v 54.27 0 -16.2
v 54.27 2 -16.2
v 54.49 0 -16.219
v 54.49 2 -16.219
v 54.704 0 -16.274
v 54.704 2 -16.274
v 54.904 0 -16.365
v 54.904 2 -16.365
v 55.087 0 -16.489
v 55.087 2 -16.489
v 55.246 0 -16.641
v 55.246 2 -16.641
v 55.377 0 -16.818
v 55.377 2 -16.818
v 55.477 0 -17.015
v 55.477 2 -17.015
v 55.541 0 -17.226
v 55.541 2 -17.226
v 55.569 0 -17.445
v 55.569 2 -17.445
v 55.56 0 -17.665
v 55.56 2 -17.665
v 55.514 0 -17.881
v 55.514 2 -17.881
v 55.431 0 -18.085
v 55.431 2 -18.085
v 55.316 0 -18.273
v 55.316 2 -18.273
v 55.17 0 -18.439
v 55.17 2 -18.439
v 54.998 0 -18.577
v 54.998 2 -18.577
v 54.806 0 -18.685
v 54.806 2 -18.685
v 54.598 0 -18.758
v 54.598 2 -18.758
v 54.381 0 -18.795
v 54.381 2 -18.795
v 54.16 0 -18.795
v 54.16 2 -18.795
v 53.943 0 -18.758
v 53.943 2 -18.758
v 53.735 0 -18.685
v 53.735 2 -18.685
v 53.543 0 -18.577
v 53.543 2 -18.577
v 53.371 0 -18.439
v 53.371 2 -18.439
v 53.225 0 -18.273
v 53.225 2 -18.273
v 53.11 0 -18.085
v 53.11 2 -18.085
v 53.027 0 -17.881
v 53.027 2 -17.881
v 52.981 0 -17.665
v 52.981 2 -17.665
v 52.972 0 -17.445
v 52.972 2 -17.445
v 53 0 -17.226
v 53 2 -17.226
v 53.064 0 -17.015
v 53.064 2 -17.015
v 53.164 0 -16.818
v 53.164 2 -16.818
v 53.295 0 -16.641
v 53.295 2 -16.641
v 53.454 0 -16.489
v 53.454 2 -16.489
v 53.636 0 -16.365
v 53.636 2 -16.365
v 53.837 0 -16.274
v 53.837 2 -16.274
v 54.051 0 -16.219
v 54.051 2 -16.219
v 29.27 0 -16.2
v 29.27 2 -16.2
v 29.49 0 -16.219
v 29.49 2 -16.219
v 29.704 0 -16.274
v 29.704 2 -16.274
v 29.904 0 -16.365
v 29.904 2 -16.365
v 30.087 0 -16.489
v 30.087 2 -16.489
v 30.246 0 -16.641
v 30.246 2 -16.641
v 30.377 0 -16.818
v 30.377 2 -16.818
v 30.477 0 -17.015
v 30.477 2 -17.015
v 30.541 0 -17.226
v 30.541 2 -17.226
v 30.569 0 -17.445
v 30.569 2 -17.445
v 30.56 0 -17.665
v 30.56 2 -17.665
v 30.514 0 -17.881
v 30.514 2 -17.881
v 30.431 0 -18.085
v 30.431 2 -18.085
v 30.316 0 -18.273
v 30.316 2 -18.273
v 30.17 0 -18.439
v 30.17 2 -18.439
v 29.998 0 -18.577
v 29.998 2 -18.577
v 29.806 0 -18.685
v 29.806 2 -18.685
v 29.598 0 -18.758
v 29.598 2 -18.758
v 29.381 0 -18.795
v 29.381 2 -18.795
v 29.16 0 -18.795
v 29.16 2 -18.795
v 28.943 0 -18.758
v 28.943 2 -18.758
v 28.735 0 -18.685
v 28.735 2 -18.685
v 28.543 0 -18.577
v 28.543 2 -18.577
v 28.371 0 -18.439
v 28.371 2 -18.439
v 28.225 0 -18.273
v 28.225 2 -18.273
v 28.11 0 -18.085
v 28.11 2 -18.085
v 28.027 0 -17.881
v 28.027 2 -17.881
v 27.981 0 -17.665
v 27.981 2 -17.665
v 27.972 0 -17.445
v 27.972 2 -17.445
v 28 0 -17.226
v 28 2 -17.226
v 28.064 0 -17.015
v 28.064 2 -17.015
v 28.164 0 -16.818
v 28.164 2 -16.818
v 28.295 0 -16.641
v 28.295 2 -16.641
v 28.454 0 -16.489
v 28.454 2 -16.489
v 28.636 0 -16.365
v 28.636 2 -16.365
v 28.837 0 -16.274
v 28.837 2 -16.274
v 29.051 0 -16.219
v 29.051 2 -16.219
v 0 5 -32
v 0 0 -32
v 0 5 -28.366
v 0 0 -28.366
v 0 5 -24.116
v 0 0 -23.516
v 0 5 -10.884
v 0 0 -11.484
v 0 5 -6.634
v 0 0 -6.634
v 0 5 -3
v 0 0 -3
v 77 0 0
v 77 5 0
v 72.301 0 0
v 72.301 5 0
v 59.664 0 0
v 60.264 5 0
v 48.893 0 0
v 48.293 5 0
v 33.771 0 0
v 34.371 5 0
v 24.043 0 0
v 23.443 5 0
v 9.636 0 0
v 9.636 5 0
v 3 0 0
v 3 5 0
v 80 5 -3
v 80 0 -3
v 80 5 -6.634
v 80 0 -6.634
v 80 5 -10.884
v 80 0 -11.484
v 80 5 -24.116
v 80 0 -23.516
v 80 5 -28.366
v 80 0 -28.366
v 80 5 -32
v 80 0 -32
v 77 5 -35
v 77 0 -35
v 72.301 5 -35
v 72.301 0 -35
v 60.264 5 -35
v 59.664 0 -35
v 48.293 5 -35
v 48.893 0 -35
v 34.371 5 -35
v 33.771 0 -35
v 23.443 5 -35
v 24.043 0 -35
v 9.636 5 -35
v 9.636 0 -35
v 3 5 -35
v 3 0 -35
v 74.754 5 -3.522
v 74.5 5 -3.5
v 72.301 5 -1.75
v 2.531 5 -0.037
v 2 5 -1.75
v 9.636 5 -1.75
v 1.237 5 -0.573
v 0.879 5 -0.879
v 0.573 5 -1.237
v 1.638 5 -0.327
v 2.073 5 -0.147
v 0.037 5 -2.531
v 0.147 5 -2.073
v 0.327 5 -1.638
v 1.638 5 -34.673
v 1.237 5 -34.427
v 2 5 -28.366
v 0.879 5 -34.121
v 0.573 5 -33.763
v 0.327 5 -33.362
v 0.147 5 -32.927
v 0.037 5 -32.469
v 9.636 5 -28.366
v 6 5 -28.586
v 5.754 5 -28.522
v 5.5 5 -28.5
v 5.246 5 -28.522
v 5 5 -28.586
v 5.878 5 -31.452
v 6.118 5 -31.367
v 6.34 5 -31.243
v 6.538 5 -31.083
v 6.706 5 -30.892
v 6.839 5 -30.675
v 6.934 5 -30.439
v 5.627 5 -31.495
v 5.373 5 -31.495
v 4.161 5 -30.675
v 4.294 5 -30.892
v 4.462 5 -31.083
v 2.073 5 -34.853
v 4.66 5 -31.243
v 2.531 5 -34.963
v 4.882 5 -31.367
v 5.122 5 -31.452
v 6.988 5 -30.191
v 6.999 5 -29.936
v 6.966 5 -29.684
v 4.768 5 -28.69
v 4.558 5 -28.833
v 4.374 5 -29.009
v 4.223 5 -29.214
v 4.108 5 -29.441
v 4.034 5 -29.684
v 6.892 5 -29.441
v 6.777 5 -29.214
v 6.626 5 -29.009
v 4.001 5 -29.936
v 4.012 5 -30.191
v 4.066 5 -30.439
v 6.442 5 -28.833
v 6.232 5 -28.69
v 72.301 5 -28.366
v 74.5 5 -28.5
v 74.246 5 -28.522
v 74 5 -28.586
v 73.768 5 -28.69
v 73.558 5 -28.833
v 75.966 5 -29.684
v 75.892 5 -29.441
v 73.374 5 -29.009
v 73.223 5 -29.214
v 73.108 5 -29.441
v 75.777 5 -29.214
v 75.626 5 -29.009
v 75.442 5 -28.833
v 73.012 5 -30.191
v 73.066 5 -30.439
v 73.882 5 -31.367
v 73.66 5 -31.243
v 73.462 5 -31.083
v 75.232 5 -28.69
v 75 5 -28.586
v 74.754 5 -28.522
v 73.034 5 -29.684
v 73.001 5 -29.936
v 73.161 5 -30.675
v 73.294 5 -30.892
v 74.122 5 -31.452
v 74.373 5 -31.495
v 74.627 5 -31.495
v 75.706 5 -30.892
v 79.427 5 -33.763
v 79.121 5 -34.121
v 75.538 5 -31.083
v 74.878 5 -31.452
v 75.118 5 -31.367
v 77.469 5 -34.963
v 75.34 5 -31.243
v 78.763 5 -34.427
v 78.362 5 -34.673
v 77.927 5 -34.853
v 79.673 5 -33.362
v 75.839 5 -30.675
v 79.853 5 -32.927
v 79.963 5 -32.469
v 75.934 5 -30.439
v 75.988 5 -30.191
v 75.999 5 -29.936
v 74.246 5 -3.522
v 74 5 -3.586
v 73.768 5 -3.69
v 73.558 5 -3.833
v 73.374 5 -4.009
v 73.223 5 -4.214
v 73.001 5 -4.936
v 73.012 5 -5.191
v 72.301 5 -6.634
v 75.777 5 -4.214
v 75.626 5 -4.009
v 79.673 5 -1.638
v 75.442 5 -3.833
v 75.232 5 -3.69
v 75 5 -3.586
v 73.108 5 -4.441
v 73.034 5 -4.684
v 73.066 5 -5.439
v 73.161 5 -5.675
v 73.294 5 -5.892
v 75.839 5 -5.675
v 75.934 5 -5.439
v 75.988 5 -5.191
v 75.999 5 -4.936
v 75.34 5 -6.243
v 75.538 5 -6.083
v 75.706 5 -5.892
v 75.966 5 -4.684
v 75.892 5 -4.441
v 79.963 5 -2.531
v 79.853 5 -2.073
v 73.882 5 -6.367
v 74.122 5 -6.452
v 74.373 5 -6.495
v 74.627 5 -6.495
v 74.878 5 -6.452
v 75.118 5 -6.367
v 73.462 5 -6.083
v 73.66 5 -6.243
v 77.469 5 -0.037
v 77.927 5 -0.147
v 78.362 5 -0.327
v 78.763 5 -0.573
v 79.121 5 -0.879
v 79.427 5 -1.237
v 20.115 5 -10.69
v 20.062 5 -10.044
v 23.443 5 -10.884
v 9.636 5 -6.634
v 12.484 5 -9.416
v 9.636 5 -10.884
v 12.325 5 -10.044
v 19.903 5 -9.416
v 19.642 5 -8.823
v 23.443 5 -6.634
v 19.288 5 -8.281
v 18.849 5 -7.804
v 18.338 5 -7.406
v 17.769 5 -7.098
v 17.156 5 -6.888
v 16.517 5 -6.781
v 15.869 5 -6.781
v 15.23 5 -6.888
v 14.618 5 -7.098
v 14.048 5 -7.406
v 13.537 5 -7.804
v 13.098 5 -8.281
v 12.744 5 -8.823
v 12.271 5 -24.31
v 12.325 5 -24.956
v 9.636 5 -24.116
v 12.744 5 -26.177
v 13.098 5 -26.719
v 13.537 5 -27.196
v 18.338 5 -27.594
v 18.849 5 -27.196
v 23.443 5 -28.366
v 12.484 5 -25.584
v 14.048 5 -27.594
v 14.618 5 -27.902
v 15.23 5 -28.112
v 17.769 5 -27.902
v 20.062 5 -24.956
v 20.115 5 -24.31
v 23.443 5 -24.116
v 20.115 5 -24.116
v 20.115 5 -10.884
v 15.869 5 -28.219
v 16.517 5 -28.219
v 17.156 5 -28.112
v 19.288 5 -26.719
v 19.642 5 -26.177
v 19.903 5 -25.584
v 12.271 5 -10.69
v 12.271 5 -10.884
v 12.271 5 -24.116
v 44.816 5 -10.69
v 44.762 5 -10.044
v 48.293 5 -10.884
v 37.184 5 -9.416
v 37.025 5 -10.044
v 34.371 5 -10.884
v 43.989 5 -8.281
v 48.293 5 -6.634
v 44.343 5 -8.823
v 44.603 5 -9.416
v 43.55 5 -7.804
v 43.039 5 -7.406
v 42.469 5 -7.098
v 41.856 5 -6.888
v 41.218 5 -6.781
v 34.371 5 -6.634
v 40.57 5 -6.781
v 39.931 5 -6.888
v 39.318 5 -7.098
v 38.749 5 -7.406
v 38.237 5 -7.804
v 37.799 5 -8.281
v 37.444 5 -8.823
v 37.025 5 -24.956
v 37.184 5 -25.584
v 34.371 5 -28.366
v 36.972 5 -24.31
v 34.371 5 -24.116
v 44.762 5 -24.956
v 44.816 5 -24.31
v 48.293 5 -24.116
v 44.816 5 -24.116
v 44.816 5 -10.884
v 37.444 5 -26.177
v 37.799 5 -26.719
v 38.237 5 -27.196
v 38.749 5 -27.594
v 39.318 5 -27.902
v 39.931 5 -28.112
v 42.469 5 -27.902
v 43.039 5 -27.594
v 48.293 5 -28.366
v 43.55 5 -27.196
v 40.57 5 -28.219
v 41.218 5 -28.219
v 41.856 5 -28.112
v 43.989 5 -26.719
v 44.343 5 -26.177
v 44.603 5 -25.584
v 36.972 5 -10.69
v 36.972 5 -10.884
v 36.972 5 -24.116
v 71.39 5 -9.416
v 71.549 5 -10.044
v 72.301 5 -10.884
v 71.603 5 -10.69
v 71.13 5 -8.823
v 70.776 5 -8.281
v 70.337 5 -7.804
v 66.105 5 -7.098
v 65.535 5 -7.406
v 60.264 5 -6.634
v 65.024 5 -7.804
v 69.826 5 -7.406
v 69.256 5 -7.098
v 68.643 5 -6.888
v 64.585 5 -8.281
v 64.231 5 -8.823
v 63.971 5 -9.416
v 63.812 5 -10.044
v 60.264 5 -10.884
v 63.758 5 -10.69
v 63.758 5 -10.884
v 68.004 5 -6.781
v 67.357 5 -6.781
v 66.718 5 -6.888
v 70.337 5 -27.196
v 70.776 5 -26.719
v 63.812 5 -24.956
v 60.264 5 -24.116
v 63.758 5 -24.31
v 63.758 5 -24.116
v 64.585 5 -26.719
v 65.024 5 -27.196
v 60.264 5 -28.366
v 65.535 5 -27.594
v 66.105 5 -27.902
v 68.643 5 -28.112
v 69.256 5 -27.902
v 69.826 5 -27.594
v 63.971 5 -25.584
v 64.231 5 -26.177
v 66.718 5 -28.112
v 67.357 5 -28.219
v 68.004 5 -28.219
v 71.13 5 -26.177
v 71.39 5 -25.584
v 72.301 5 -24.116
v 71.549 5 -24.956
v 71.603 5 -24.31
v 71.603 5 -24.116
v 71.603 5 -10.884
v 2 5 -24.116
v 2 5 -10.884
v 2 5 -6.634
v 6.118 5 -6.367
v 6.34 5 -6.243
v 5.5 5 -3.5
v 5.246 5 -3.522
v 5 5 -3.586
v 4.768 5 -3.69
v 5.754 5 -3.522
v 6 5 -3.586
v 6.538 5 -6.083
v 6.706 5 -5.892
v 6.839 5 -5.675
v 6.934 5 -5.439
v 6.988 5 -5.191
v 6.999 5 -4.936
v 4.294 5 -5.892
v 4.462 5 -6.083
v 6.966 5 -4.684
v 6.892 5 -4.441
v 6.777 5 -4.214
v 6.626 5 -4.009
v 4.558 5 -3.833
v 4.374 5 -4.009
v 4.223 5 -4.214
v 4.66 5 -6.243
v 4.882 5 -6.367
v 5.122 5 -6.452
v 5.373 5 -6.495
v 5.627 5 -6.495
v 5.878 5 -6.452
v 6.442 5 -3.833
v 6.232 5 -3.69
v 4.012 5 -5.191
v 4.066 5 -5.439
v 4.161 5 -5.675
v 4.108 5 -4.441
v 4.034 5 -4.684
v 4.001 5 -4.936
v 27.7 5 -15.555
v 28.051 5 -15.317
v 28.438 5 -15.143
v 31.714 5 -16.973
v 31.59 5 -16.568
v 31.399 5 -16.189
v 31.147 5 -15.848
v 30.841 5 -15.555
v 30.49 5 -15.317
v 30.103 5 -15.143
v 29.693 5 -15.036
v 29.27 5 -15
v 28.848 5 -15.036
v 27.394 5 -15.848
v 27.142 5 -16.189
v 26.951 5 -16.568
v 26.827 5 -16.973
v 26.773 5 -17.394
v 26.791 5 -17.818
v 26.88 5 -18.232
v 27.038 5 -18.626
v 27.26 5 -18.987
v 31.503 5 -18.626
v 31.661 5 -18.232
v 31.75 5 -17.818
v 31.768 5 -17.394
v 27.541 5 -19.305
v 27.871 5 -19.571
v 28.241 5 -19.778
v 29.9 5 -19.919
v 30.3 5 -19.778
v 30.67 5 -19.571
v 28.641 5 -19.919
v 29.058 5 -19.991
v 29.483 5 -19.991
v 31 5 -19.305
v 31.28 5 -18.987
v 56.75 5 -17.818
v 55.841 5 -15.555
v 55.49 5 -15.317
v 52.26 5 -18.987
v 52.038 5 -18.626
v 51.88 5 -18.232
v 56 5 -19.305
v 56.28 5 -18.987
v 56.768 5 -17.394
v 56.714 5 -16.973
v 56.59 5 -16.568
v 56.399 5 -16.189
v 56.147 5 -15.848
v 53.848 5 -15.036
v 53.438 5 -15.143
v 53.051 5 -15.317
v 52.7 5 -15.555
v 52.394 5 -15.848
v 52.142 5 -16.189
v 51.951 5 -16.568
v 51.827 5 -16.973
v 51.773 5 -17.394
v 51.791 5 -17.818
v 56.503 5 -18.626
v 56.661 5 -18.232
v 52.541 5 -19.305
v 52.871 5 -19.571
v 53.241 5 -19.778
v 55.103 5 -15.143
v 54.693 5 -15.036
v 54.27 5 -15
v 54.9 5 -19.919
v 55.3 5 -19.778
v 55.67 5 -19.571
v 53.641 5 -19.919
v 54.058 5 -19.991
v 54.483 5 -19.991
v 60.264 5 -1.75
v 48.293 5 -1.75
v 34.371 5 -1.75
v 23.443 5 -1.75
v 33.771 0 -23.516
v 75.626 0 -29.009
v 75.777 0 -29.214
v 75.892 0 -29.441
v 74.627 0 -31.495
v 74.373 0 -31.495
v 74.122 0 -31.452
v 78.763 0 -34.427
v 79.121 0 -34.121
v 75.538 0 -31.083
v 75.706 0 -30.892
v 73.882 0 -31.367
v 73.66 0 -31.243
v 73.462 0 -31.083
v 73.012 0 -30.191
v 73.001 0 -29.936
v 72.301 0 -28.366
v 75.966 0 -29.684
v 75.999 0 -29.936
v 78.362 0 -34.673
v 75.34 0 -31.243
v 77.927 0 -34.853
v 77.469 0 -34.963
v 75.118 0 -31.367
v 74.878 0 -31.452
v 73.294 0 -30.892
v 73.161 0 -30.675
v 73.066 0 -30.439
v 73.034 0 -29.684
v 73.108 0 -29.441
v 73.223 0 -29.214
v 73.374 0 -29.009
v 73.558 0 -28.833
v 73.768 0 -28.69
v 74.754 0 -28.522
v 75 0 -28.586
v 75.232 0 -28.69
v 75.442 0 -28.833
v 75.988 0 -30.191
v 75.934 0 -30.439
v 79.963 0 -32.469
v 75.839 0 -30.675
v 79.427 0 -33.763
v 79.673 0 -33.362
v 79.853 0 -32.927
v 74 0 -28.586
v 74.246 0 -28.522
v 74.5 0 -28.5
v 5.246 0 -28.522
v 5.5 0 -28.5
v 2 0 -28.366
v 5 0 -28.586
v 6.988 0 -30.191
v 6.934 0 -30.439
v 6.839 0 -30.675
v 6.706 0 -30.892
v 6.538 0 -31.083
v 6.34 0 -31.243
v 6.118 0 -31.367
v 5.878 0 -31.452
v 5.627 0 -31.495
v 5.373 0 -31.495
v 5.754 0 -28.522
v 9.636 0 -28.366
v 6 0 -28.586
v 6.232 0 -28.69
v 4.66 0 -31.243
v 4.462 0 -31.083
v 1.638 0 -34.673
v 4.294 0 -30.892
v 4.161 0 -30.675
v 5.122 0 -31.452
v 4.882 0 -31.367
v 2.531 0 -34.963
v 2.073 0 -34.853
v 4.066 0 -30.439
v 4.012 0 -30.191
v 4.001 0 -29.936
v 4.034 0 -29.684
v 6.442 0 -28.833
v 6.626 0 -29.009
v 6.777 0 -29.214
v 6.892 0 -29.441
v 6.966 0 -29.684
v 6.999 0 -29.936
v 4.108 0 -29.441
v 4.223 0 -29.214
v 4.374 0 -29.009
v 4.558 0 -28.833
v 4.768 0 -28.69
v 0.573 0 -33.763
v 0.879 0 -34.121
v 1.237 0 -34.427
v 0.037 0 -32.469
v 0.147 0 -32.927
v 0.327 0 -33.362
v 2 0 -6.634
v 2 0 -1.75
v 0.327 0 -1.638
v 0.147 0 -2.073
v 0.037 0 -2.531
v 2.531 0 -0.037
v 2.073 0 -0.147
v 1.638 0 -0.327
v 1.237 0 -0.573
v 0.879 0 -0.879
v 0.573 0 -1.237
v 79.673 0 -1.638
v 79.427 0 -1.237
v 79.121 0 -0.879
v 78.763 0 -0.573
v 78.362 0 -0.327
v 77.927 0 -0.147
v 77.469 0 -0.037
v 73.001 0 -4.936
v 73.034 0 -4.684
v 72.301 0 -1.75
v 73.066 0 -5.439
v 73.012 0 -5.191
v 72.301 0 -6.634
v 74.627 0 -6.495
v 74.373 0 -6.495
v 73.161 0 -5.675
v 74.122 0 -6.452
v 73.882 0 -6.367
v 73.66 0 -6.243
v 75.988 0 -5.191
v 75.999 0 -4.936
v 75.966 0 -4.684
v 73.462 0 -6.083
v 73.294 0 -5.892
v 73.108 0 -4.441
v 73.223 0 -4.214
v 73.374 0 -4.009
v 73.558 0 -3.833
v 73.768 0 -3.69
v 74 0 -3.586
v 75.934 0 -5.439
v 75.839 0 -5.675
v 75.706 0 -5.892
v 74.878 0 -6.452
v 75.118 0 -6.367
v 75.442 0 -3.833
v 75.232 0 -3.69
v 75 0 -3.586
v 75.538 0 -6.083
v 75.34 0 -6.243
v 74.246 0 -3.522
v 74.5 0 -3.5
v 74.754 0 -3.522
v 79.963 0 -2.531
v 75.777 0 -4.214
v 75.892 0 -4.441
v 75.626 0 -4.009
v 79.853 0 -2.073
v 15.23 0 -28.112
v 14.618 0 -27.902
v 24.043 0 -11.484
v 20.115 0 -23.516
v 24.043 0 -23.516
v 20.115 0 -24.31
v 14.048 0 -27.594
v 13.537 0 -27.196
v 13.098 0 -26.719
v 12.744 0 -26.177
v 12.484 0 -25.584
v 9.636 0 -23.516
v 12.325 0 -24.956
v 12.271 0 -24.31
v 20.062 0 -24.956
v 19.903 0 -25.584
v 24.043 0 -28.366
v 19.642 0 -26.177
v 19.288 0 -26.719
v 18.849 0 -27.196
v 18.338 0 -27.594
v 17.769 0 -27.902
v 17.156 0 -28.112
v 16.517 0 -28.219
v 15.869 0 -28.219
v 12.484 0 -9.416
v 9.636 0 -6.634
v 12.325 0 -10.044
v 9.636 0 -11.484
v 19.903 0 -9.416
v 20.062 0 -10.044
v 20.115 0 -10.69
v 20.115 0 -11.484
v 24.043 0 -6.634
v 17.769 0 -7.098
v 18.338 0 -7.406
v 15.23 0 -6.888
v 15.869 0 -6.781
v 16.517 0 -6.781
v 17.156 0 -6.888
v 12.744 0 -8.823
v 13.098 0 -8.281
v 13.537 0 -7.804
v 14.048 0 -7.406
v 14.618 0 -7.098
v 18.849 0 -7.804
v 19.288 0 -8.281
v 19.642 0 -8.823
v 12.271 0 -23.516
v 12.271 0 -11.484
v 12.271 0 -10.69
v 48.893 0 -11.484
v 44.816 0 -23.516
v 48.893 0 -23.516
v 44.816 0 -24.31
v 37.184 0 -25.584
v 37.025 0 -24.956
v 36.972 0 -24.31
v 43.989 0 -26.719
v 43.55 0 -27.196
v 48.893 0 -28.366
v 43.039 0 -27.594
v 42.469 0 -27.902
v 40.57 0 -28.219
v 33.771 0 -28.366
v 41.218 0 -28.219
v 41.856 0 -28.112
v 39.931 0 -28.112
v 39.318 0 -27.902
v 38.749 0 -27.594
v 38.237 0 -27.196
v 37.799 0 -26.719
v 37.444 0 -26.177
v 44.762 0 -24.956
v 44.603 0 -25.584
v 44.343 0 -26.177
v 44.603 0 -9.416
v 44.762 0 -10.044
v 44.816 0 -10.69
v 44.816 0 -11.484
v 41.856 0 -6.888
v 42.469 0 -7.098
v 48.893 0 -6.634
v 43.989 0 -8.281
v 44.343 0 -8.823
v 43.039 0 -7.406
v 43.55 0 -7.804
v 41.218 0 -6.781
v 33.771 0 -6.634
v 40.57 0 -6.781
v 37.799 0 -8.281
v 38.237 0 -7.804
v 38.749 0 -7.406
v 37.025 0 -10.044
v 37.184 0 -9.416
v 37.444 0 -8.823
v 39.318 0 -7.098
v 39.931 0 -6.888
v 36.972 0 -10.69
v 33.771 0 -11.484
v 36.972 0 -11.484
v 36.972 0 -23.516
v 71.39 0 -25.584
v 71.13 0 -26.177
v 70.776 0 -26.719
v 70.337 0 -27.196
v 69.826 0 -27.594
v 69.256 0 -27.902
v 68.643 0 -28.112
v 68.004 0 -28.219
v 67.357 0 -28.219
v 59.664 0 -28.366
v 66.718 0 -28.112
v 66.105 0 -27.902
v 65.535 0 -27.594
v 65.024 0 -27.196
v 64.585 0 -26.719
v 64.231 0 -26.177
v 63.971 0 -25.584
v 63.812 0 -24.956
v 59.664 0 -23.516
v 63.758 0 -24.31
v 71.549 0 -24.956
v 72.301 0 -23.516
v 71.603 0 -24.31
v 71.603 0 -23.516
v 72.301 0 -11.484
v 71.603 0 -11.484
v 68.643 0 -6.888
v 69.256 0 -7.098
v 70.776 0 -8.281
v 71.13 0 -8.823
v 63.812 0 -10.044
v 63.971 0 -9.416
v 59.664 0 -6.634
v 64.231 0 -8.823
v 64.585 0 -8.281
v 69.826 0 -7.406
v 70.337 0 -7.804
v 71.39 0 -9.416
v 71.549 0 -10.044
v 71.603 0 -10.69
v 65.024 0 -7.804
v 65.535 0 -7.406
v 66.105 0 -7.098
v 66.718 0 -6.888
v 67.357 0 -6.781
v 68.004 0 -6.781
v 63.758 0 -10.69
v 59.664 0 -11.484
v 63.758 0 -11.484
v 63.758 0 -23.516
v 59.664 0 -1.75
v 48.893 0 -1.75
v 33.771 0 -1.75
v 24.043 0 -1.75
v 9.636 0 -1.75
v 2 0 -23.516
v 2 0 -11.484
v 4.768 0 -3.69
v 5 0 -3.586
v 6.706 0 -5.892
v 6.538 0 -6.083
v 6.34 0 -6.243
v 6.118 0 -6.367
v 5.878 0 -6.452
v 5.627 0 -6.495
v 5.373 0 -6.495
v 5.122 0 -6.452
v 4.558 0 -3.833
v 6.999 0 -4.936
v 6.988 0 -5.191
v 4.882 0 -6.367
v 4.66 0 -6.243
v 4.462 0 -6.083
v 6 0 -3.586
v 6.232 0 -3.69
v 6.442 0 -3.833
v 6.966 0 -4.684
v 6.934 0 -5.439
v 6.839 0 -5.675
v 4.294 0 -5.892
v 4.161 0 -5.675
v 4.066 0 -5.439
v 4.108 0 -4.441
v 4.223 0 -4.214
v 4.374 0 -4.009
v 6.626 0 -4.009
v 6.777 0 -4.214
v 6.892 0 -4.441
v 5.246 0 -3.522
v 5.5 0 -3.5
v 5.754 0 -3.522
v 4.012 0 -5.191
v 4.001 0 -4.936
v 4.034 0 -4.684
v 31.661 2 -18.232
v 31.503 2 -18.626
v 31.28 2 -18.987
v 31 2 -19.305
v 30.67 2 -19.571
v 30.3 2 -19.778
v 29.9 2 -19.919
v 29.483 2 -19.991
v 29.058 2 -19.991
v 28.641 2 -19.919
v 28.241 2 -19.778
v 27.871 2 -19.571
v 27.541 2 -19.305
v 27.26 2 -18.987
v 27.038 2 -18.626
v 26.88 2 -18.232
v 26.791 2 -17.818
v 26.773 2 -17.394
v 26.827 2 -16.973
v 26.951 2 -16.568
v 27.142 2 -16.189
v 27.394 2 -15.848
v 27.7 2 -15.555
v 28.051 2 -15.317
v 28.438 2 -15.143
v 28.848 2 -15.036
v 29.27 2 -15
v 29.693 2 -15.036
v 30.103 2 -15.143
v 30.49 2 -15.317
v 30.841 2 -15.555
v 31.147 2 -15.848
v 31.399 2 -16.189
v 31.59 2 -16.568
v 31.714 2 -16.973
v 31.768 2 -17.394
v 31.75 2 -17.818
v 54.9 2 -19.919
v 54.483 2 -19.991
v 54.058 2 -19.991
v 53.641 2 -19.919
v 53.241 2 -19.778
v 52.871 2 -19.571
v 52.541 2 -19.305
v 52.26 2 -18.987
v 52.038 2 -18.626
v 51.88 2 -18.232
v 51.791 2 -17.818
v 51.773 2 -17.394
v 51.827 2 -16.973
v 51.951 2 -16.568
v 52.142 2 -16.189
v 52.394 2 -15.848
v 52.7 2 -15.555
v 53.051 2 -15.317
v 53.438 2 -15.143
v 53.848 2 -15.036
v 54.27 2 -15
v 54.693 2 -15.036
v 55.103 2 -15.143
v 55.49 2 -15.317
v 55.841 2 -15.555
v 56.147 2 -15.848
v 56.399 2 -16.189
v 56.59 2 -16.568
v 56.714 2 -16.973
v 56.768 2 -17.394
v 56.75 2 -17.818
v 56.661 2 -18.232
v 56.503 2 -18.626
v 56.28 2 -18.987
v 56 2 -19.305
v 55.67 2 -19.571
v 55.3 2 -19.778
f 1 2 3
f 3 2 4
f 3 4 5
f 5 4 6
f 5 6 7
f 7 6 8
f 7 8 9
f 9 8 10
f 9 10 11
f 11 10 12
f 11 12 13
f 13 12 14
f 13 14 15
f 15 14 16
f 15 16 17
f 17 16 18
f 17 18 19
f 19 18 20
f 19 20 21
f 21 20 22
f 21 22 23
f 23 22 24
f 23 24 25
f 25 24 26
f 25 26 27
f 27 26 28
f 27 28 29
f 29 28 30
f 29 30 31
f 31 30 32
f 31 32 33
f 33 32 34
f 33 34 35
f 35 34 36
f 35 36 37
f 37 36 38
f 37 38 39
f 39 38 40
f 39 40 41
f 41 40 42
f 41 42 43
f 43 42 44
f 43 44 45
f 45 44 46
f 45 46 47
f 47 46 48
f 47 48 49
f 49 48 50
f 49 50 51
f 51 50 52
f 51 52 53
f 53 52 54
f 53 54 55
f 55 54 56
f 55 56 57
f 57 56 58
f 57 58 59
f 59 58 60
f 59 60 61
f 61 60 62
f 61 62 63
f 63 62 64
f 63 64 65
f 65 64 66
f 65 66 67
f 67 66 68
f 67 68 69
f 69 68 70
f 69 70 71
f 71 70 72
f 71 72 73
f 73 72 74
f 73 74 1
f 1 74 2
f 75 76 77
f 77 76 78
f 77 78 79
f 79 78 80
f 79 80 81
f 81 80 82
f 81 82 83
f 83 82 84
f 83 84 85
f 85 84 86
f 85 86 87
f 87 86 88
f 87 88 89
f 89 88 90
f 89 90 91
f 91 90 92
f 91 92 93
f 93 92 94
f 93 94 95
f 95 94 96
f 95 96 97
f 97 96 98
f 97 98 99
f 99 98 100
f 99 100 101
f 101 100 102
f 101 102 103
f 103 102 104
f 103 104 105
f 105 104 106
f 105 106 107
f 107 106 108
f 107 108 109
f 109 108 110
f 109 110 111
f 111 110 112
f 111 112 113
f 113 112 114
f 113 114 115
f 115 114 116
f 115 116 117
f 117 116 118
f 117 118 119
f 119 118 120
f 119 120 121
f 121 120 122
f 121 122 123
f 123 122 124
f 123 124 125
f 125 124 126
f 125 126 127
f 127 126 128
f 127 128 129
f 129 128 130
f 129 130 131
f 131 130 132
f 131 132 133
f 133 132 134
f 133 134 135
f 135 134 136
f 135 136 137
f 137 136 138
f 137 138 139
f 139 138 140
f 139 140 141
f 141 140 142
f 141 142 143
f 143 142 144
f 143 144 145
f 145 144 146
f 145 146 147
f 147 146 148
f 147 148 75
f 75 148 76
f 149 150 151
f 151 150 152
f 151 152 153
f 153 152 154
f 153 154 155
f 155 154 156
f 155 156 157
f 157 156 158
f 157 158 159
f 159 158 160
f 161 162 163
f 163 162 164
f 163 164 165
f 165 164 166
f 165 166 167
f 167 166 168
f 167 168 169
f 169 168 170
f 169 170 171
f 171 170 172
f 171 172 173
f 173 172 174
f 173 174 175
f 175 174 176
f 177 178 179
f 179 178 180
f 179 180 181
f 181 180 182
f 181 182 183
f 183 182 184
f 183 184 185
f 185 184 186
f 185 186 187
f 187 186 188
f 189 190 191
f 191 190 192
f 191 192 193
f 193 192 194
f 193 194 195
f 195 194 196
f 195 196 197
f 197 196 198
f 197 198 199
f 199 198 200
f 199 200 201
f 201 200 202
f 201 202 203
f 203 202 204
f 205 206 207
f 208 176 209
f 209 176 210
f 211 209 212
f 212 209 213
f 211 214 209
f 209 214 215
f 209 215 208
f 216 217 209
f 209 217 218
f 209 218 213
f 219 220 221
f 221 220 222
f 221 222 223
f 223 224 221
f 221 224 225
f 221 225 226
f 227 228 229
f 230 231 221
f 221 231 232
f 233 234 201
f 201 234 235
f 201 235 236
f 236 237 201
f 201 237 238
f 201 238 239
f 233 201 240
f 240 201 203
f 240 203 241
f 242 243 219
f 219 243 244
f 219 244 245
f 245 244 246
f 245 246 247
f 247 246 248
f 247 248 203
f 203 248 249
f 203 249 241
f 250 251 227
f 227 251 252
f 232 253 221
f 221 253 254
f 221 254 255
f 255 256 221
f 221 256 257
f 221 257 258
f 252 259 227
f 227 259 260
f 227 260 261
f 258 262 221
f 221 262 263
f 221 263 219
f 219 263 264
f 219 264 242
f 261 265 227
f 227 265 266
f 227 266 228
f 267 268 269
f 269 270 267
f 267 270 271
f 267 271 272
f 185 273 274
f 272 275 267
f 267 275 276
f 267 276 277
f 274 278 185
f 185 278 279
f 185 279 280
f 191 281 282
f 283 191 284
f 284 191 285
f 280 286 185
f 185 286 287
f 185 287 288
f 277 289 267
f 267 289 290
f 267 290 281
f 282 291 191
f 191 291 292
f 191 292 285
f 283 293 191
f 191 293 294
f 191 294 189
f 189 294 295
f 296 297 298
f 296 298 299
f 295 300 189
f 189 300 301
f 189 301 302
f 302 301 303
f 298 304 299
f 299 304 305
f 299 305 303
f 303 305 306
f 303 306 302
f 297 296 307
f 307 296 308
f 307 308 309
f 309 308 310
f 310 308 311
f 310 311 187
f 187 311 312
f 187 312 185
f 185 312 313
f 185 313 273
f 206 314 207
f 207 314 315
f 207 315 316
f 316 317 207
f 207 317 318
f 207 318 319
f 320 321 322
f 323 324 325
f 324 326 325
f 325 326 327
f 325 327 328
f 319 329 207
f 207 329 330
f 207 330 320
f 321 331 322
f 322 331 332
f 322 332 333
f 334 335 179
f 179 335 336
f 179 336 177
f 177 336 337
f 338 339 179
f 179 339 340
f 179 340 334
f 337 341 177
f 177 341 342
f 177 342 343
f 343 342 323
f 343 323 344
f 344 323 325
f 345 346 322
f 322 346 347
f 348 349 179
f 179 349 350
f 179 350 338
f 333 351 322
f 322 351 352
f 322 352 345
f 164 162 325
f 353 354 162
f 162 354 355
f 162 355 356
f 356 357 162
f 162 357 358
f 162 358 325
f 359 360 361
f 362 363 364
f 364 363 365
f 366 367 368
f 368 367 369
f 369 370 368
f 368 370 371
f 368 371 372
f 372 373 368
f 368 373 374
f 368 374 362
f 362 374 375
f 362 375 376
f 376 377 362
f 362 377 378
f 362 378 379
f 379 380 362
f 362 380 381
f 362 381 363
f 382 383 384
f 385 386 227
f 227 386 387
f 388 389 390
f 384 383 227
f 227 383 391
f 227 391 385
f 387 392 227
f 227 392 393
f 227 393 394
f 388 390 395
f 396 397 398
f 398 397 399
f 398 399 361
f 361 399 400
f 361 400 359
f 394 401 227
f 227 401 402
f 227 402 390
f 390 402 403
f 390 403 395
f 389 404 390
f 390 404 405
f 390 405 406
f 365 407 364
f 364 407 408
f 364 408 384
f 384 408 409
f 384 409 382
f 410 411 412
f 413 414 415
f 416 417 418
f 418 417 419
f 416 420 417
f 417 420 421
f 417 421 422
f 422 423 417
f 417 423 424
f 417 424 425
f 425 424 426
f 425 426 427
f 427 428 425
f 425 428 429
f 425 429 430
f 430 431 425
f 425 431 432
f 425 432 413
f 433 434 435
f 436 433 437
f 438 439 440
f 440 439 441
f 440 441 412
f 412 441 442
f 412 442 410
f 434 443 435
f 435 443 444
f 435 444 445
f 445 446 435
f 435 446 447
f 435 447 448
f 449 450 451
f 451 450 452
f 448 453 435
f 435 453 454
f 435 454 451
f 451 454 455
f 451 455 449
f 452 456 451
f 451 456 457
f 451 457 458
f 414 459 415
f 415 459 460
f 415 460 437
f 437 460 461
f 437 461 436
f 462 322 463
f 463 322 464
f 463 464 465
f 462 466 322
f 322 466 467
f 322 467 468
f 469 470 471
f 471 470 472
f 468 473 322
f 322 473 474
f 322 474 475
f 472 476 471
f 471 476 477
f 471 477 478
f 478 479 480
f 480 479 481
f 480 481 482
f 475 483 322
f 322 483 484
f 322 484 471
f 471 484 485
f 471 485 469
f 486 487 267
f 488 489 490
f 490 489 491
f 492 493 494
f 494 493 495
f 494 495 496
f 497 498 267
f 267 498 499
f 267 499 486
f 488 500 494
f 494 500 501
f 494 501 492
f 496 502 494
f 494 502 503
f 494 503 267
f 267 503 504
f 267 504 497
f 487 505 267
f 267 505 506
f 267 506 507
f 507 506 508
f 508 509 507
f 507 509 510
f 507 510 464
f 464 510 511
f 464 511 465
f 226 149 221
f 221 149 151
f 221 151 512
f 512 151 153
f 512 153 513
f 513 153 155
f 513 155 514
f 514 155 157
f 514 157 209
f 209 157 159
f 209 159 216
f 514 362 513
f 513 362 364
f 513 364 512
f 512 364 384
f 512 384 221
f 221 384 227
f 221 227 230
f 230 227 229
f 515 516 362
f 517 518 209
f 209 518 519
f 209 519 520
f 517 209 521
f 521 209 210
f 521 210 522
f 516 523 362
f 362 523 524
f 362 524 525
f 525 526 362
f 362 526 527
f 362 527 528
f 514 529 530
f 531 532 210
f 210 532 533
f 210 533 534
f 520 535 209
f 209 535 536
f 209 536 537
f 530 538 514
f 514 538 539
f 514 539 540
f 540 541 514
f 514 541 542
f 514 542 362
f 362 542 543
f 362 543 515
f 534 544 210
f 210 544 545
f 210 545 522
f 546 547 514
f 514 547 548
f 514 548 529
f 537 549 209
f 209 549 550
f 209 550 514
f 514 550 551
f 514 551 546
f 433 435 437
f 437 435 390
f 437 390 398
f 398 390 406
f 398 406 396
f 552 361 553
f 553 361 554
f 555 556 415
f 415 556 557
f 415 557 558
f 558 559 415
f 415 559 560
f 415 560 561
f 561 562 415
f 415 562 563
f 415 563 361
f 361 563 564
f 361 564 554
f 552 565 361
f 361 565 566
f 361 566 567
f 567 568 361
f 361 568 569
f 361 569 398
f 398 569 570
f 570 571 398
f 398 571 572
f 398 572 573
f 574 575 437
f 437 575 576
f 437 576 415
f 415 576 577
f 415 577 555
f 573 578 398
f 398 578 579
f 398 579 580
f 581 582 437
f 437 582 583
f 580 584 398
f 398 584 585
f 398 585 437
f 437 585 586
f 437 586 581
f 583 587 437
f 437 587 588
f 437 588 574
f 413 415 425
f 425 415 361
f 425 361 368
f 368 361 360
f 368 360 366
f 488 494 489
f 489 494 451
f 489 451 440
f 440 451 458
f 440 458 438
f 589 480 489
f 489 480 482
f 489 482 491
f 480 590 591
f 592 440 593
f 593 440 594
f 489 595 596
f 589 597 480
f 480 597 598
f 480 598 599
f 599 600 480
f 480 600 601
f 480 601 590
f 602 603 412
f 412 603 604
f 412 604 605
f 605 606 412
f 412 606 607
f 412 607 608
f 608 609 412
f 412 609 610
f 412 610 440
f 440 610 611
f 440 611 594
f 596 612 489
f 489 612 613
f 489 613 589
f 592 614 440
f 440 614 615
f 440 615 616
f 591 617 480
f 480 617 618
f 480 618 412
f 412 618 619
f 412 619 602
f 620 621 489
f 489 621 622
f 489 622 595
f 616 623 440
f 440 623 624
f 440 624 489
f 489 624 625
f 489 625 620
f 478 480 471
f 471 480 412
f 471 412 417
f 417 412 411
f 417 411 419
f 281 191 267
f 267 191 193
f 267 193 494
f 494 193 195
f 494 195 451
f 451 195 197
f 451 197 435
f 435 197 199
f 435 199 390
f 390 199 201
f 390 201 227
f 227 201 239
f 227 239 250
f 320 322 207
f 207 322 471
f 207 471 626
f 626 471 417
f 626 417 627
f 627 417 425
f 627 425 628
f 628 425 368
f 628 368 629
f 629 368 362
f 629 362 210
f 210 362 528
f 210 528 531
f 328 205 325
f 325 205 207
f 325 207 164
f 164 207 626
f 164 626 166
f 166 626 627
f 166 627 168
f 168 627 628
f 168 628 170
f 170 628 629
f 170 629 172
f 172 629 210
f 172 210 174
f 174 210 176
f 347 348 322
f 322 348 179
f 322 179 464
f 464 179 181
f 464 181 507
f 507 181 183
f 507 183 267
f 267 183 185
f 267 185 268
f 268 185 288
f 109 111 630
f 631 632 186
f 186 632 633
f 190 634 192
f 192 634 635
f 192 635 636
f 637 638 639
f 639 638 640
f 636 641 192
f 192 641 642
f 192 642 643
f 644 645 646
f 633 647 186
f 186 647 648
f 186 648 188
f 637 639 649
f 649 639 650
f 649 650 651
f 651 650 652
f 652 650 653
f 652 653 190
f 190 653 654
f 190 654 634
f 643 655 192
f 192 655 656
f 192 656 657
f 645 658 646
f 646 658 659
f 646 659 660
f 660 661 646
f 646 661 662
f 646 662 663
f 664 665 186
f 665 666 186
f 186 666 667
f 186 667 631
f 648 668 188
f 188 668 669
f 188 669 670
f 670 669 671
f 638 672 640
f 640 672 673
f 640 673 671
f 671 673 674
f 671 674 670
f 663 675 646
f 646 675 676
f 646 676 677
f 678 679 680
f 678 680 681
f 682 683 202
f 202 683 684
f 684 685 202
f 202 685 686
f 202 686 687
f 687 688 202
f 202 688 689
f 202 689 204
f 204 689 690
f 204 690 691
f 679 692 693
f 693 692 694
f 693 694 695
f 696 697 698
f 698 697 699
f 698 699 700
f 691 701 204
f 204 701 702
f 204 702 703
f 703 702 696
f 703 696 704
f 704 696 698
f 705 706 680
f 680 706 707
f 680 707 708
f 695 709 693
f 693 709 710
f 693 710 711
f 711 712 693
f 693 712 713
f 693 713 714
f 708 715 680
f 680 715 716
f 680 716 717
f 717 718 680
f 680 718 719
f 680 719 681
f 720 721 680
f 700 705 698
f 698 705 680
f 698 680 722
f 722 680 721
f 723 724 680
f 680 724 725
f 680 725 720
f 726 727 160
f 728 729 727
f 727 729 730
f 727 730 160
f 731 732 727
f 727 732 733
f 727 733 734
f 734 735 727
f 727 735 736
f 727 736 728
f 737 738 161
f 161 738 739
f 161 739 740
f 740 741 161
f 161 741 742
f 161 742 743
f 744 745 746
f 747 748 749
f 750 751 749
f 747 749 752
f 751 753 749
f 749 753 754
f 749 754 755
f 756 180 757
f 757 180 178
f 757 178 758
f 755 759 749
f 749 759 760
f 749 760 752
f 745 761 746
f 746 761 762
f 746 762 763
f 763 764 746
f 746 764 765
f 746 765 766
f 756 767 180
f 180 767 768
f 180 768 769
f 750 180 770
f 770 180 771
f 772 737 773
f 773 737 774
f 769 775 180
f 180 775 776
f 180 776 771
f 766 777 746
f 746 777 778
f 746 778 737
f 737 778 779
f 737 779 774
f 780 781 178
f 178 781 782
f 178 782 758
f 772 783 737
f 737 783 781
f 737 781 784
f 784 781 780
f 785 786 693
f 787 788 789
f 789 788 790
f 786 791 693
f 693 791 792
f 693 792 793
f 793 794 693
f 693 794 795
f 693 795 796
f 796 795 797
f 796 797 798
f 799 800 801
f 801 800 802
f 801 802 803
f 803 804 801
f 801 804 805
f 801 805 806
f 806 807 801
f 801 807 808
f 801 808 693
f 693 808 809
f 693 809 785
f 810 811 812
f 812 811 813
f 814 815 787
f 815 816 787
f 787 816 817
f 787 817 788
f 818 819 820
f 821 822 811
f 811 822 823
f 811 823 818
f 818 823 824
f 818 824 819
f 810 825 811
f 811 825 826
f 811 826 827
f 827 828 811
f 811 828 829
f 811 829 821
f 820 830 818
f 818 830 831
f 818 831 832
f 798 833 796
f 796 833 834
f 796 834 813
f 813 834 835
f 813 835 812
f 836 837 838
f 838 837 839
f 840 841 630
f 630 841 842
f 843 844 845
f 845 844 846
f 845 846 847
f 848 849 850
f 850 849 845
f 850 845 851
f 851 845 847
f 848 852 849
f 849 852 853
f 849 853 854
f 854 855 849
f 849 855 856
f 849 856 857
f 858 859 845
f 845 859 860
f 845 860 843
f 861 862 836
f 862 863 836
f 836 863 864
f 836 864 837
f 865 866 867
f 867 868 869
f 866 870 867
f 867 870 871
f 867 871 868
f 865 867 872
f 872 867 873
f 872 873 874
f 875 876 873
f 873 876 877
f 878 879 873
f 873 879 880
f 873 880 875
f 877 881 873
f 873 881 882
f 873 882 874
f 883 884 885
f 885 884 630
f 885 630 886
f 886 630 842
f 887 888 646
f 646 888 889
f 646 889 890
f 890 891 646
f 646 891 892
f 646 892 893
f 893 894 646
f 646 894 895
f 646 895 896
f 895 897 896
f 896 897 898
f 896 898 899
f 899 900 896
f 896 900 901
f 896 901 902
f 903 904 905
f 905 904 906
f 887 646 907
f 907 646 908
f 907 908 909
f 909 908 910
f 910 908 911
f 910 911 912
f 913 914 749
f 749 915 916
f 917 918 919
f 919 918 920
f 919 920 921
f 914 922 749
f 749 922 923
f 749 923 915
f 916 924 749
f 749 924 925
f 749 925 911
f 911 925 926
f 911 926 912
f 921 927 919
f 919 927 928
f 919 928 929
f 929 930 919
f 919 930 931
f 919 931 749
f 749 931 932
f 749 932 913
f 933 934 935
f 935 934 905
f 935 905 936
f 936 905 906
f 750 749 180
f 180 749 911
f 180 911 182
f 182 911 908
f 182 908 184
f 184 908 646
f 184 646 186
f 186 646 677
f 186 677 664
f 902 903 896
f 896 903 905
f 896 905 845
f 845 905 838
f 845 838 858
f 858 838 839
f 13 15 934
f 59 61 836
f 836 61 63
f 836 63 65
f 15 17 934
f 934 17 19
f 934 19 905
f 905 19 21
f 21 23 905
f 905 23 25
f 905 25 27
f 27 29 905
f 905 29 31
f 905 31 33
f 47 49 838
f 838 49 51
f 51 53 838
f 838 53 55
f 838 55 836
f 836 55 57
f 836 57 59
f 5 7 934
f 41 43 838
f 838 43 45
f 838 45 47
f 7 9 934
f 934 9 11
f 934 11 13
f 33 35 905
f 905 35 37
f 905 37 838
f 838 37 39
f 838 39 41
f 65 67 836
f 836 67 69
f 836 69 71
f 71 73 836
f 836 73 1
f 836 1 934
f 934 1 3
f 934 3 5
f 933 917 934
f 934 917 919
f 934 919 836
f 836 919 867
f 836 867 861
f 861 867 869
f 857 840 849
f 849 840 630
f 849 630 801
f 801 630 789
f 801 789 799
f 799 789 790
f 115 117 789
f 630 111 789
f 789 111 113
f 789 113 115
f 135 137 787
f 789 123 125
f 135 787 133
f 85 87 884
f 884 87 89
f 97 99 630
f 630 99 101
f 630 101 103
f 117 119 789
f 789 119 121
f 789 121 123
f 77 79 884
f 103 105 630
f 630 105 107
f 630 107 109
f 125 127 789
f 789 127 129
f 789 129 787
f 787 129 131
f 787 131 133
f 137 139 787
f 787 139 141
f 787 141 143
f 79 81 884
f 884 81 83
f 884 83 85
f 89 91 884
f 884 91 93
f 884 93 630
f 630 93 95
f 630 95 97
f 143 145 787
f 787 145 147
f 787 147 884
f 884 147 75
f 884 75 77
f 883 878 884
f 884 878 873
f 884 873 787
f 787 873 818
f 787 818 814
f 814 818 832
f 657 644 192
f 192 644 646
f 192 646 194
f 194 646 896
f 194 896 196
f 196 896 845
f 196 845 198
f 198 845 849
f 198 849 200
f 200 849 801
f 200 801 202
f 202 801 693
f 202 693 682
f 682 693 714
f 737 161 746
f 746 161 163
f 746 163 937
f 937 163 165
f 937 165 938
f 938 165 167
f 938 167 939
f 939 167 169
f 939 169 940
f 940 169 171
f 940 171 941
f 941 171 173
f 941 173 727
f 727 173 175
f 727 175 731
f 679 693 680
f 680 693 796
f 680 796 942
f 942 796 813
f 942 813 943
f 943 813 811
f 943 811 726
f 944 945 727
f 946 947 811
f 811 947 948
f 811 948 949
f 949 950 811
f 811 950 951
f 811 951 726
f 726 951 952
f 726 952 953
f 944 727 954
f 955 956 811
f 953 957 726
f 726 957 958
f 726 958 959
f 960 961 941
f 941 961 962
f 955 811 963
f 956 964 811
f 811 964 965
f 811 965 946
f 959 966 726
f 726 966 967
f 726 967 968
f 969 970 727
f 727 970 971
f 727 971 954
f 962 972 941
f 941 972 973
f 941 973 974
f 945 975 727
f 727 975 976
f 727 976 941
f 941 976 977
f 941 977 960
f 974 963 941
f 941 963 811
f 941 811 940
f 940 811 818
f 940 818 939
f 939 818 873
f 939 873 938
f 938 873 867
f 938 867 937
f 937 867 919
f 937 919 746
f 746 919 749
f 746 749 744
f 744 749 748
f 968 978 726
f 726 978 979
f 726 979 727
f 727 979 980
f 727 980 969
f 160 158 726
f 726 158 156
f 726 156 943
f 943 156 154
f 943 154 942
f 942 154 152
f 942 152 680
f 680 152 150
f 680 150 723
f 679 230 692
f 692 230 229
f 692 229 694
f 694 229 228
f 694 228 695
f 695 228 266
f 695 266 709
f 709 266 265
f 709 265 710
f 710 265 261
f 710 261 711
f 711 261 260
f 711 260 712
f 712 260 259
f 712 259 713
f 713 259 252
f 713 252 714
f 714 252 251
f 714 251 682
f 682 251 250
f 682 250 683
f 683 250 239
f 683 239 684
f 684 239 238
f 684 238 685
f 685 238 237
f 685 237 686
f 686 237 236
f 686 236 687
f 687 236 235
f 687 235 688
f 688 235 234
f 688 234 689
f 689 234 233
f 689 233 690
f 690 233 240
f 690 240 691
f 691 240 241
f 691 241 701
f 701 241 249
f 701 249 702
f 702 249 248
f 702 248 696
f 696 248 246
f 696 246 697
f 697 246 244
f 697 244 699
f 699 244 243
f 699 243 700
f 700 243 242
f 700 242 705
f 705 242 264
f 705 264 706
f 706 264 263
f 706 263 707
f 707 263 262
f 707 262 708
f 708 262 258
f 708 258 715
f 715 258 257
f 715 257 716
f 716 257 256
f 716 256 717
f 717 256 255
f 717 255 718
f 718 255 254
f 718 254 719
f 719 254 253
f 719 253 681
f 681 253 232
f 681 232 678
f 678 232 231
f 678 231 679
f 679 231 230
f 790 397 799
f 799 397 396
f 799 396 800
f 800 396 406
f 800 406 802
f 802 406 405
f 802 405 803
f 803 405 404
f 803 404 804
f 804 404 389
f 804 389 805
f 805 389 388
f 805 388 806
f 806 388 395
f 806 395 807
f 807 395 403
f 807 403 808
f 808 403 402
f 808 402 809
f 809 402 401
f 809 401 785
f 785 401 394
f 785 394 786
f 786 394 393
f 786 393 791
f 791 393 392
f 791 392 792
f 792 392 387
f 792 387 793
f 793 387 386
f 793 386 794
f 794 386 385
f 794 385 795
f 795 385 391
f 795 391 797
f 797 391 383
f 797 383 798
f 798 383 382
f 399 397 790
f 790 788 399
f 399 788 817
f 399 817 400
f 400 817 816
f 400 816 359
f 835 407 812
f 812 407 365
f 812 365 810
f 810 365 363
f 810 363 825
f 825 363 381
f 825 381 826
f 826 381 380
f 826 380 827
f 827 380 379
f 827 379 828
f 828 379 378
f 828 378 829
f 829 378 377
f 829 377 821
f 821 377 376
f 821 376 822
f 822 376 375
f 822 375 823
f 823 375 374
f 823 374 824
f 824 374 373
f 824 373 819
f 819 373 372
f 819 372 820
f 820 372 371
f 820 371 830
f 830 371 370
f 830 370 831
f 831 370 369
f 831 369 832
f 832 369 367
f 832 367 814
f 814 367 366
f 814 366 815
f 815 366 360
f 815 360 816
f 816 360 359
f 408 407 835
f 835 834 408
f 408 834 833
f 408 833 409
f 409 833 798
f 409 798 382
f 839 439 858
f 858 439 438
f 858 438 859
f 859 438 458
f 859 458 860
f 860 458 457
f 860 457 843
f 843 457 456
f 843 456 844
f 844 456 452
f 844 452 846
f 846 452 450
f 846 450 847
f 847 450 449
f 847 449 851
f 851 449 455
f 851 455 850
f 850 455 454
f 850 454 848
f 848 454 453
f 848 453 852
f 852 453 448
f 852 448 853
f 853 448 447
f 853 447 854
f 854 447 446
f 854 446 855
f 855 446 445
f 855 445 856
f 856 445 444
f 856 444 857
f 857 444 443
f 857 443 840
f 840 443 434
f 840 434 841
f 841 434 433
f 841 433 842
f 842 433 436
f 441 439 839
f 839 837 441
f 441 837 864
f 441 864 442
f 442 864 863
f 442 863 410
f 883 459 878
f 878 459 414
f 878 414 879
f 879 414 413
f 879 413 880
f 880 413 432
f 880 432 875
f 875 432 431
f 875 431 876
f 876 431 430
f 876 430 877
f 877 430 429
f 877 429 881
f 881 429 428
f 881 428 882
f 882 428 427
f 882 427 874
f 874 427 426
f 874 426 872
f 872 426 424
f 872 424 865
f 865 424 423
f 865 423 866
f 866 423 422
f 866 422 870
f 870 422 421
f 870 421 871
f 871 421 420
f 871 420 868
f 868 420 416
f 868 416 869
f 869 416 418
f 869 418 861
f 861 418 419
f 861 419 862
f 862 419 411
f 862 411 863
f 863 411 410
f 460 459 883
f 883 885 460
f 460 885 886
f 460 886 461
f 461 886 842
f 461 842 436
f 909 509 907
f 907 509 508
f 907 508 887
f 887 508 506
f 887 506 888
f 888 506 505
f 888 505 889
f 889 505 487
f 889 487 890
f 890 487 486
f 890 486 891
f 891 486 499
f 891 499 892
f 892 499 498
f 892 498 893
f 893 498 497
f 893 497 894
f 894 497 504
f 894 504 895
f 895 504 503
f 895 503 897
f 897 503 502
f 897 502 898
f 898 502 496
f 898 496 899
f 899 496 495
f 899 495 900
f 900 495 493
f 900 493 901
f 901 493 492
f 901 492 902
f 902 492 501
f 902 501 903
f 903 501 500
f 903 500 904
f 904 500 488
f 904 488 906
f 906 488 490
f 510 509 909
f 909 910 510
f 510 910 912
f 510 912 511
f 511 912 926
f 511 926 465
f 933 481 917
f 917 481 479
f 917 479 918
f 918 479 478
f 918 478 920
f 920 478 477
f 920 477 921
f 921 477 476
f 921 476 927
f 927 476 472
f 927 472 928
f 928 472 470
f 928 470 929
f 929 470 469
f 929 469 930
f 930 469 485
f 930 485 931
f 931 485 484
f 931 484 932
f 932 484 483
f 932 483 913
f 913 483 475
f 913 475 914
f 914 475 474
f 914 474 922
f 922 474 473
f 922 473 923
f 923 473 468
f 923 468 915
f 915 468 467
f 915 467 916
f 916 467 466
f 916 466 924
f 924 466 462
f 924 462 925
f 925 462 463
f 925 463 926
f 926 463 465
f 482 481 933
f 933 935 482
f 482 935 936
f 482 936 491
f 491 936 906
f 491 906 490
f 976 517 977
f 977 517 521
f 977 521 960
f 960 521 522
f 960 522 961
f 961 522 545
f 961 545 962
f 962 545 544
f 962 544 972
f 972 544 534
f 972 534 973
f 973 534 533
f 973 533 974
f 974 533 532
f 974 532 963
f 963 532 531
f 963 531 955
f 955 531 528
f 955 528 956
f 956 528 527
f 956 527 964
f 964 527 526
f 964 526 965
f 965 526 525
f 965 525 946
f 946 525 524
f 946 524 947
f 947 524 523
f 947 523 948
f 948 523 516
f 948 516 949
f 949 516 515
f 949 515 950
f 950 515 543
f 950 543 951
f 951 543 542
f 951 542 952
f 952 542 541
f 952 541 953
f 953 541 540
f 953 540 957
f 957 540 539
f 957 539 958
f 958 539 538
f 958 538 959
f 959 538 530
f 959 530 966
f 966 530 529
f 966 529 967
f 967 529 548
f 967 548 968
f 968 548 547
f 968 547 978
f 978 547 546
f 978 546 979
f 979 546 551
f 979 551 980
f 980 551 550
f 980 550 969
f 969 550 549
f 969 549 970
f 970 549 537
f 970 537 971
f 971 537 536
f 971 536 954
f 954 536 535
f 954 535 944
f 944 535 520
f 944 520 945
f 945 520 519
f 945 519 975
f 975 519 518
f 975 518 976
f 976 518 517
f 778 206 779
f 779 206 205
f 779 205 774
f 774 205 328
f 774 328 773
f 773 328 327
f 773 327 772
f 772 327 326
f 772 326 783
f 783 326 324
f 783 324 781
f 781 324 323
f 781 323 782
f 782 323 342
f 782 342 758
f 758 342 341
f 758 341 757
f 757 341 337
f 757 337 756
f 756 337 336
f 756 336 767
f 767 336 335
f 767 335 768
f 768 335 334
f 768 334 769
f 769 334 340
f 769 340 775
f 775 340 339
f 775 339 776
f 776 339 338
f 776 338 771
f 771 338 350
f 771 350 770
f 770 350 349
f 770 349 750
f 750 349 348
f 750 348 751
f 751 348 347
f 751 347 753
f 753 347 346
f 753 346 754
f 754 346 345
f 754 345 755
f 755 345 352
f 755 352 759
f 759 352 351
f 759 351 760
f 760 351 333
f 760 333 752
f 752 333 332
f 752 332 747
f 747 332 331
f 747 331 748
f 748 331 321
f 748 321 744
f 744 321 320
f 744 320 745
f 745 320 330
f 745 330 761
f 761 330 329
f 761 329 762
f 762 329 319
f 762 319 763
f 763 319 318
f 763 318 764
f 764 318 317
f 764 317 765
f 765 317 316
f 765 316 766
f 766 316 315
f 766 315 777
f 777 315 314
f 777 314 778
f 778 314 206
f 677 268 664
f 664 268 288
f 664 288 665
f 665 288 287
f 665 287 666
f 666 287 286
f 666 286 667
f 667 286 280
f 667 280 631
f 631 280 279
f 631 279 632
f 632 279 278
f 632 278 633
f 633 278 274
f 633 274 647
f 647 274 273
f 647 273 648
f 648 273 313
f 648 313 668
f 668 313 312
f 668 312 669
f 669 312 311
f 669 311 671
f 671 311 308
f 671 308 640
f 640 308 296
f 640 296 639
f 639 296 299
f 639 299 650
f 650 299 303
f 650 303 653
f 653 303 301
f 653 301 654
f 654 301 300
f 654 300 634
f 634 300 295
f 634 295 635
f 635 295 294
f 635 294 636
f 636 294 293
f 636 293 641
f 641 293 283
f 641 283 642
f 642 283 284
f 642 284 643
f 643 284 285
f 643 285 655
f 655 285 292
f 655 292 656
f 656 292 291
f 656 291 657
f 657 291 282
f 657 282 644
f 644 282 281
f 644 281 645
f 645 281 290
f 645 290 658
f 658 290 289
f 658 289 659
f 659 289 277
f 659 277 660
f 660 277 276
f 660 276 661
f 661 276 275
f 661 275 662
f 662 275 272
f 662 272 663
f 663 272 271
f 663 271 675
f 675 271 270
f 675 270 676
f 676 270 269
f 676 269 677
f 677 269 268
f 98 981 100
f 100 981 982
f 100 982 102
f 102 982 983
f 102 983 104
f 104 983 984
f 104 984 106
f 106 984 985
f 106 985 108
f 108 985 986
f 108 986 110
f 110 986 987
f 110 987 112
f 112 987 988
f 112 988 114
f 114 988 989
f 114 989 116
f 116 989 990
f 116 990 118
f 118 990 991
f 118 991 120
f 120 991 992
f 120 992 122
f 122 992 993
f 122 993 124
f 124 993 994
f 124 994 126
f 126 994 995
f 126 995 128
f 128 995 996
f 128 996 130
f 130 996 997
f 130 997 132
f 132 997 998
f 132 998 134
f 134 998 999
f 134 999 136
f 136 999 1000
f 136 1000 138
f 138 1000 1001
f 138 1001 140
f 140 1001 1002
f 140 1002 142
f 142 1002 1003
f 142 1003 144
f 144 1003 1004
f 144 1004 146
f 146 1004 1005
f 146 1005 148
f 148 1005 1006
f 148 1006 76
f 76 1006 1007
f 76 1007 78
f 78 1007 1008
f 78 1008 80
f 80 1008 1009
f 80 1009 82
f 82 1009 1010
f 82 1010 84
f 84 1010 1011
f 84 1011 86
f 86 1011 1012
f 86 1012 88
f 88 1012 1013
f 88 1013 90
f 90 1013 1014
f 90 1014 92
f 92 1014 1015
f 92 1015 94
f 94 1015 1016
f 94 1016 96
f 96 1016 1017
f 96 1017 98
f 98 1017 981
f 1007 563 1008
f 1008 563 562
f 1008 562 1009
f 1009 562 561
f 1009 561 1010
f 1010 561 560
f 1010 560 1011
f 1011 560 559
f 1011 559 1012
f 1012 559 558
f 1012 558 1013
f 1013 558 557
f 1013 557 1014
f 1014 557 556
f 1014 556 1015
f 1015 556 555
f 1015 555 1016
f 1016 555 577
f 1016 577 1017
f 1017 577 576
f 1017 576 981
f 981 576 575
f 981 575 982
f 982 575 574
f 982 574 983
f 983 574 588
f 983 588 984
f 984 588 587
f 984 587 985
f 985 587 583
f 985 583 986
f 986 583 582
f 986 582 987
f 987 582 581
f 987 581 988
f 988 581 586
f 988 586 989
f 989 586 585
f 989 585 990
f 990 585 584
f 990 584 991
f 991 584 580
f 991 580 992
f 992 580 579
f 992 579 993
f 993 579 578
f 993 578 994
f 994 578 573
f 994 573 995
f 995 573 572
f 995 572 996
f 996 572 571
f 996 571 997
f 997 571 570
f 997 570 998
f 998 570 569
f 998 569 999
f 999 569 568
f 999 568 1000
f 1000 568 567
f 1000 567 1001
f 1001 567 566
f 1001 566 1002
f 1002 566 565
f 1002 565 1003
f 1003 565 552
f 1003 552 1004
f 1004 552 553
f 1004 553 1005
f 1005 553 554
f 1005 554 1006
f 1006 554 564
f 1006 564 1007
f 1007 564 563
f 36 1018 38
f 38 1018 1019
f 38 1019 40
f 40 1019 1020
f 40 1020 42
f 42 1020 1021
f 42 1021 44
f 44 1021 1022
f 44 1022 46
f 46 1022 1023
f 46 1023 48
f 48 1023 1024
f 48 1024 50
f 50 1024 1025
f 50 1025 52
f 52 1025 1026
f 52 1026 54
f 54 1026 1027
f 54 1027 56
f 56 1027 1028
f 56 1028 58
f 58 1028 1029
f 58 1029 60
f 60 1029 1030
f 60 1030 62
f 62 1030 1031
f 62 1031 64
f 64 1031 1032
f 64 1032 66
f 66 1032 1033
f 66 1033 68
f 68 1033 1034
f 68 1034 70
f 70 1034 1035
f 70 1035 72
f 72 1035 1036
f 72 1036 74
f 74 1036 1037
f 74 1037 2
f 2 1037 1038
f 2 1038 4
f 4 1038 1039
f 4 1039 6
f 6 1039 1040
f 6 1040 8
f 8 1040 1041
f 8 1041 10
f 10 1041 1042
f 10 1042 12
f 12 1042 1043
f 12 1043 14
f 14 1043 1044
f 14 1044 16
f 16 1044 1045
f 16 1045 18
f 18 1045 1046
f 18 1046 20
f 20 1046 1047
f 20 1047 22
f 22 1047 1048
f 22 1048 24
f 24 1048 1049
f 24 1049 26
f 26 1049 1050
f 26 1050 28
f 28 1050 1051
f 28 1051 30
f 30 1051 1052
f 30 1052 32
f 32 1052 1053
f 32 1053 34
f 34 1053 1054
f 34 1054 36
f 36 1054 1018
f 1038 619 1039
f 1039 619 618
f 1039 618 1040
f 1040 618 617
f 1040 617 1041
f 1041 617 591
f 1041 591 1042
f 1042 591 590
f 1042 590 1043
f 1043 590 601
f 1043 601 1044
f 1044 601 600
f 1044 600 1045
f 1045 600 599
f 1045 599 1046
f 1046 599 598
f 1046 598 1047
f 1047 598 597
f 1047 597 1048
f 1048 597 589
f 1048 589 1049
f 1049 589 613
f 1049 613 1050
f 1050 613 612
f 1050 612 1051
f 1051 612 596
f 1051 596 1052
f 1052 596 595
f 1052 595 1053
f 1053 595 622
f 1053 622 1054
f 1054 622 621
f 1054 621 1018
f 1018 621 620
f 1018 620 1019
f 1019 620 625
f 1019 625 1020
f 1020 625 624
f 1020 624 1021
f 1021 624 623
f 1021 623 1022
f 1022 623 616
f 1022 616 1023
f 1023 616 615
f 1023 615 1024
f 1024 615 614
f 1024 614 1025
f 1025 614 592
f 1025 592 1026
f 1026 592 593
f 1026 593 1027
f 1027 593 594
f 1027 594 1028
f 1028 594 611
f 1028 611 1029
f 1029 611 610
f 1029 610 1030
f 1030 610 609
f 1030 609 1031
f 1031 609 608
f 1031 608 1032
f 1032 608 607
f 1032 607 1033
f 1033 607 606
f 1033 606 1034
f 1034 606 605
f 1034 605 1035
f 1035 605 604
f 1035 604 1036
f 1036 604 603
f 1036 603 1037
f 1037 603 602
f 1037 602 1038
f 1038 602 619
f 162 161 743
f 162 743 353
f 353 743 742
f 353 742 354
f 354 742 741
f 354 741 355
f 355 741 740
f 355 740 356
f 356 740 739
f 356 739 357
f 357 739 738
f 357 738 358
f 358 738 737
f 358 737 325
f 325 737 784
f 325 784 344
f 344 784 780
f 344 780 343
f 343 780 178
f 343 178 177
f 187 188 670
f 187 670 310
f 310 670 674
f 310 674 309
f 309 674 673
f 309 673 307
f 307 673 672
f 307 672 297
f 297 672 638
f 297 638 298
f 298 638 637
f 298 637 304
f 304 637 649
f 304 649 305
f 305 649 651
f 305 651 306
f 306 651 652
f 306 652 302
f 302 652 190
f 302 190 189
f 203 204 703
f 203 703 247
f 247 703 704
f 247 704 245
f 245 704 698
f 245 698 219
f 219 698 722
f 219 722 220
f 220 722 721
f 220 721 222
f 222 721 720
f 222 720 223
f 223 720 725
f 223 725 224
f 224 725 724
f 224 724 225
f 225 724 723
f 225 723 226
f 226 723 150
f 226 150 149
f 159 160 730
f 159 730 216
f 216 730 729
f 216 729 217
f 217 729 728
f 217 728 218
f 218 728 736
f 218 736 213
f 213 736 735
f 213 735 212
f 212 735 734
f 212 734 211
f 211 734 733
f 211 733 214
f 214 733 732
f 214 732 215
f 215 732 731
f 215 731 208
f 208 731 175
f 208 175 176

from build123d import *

# Parameters (mm, degrees)
ESQUISSE1_W             = 80
ESQUISSE1_H             = 35
BOSS_EXTRU_1_DEPTH      = 5
ESQUISSE2_R             = 1.5
ESQUISSE2_R_2           = 1.3
ENL_V_MAT_EXTRU_1_DEPTH = 88.464278423
ESQUISSE4_R             = 2.5
ENL_V_MAT_EXTRU_2_DEPTH = 3
CONG_1_R                = 3


with BuildPart() as part:
    # Esquisse1 → Boss.-Extru.1 (new body)
    with BuildSketch(Plane(origin=(0, 0, 0), x_dir=(1, 0, 0), z_dir=(0, 1, 0))):
        with Locations((40, 17.5)):
            Rectangle(ESQUISSE1_W, ESQUISSE1_H)
    extrude(amount=BOSS_EXTRU_1_DEPTH)

    # Esquisse2 → Enlèv. mat.-Extru.1 (cut, through all)
    with BuildSketch(Plane(origin=(0, 5, 0), x_dir=(1, 0, 0), z_dir=(0, 1, 0))):
        with Locations(Location((5.5, 30, 0), (0, 0, 270))):
            Circle(ESQUISSE2_R)
        with Locations(Location((74.5, 30, 0), (0, 0, 270))):
            Circle(ESQUISSE2_R)
        with Locations(Location((29.270489512, 17.5, 0), (0, 0, 270))):
            Circle(ESQUISSE2_R_2)
        with Locations(Location((54.270489512, 17.5, 0), (0, 0, 270))):
            Circle(ESQUISSE2_R_2)
        with Locations(Location((74.5, 5, 0), (0, 0, 270))):
            Circle(ESQUISSE2_R)
        with Locations(Location((5.5, 5, 0), (0, 0, 270))):
            Circle(ESQUISSE2_R)
        with BuildLine():
            Line((71.602501664, 24.310381411), (71.602501664, 10.689618589))
            ThreePointArc((71.602501664, 10.689618589), (67.680448662, 6.767565587), (63.75839566, 10.689618589))
            Line((63.75839566, 10.689618589), (63.75839566, 24.310381411))
            ThreePointArc((63.75839566, 24.310381411), (67.680448662, 28.232434413), (71.602501664, 24.310381411))
        make_face()
        with BuildLine():
            Line((44.815714141, 24.310381411), (44.815714141, 10.689618589))
            ThreePointArc((44.815714141, 10.689618589), (40.893661139, 6.767565587), (36.971608137, 10.689618589))
            Line((36.971608137, 10.689618589), (36.971608137, 24.310381411))
            ThreePointArc((36.971608137, 24.310381411), (40.893661139, 28.232434413), (44.815714141, 24.310381411))
        make_face()
        with BuildLine():
            Line((20.115125023, 24.310381411), (20.115125023, 10.689618589))
            ThreePointArc((20.115125023, 10.689618589), (16.193072021, 6.767565587), (12.271019019, 10.689618589))
            Line((12.271019019, 10.689618589), (12.271019019, 24.310381411))
            ThreePointArc((12.271019019, 24.310381411), (16.193072021, 28.232434413), (20.115125023, 24.310381411))
        make_face()
    extrude(amount=-ENL_V_MAT_EXTRU_1_DEPTH, mode=Mode.SUBTRACT)

    # Esquisse4 → Enlèv. mat.-Extru.2 (cut)
    with BuildSketch(Plane(origin=(0, 5, 0), x_dir=(1, 0, 0), z_dir=(0, 1, 0))):
        with Locations(Location((29.270489512, 17.5, 0), (0, 0, 270))):
            Circle(ESQUISSE4_R)
        with Locations(Location((54.270489512, 17.5, 0), (0, 0, 270))):
            Circle(ESQUISSE4_R)
    extrude(amount=-ENL_V_MAT_EXTRU_2_DEPTH, mode=Mode.SUBTRACT)

    # Congé1
    cong_1_edges = [part.edges().sort_by_distance(p)[0] for p in [
        (0, 2.5, -35),
        (80, 2.5, -35),
        (80, 2.5, 0),
        (0, 2.5, 0),
    ]]
    fillet(cong_1_edges, radius=CONG_1_R)


solid = part.part
